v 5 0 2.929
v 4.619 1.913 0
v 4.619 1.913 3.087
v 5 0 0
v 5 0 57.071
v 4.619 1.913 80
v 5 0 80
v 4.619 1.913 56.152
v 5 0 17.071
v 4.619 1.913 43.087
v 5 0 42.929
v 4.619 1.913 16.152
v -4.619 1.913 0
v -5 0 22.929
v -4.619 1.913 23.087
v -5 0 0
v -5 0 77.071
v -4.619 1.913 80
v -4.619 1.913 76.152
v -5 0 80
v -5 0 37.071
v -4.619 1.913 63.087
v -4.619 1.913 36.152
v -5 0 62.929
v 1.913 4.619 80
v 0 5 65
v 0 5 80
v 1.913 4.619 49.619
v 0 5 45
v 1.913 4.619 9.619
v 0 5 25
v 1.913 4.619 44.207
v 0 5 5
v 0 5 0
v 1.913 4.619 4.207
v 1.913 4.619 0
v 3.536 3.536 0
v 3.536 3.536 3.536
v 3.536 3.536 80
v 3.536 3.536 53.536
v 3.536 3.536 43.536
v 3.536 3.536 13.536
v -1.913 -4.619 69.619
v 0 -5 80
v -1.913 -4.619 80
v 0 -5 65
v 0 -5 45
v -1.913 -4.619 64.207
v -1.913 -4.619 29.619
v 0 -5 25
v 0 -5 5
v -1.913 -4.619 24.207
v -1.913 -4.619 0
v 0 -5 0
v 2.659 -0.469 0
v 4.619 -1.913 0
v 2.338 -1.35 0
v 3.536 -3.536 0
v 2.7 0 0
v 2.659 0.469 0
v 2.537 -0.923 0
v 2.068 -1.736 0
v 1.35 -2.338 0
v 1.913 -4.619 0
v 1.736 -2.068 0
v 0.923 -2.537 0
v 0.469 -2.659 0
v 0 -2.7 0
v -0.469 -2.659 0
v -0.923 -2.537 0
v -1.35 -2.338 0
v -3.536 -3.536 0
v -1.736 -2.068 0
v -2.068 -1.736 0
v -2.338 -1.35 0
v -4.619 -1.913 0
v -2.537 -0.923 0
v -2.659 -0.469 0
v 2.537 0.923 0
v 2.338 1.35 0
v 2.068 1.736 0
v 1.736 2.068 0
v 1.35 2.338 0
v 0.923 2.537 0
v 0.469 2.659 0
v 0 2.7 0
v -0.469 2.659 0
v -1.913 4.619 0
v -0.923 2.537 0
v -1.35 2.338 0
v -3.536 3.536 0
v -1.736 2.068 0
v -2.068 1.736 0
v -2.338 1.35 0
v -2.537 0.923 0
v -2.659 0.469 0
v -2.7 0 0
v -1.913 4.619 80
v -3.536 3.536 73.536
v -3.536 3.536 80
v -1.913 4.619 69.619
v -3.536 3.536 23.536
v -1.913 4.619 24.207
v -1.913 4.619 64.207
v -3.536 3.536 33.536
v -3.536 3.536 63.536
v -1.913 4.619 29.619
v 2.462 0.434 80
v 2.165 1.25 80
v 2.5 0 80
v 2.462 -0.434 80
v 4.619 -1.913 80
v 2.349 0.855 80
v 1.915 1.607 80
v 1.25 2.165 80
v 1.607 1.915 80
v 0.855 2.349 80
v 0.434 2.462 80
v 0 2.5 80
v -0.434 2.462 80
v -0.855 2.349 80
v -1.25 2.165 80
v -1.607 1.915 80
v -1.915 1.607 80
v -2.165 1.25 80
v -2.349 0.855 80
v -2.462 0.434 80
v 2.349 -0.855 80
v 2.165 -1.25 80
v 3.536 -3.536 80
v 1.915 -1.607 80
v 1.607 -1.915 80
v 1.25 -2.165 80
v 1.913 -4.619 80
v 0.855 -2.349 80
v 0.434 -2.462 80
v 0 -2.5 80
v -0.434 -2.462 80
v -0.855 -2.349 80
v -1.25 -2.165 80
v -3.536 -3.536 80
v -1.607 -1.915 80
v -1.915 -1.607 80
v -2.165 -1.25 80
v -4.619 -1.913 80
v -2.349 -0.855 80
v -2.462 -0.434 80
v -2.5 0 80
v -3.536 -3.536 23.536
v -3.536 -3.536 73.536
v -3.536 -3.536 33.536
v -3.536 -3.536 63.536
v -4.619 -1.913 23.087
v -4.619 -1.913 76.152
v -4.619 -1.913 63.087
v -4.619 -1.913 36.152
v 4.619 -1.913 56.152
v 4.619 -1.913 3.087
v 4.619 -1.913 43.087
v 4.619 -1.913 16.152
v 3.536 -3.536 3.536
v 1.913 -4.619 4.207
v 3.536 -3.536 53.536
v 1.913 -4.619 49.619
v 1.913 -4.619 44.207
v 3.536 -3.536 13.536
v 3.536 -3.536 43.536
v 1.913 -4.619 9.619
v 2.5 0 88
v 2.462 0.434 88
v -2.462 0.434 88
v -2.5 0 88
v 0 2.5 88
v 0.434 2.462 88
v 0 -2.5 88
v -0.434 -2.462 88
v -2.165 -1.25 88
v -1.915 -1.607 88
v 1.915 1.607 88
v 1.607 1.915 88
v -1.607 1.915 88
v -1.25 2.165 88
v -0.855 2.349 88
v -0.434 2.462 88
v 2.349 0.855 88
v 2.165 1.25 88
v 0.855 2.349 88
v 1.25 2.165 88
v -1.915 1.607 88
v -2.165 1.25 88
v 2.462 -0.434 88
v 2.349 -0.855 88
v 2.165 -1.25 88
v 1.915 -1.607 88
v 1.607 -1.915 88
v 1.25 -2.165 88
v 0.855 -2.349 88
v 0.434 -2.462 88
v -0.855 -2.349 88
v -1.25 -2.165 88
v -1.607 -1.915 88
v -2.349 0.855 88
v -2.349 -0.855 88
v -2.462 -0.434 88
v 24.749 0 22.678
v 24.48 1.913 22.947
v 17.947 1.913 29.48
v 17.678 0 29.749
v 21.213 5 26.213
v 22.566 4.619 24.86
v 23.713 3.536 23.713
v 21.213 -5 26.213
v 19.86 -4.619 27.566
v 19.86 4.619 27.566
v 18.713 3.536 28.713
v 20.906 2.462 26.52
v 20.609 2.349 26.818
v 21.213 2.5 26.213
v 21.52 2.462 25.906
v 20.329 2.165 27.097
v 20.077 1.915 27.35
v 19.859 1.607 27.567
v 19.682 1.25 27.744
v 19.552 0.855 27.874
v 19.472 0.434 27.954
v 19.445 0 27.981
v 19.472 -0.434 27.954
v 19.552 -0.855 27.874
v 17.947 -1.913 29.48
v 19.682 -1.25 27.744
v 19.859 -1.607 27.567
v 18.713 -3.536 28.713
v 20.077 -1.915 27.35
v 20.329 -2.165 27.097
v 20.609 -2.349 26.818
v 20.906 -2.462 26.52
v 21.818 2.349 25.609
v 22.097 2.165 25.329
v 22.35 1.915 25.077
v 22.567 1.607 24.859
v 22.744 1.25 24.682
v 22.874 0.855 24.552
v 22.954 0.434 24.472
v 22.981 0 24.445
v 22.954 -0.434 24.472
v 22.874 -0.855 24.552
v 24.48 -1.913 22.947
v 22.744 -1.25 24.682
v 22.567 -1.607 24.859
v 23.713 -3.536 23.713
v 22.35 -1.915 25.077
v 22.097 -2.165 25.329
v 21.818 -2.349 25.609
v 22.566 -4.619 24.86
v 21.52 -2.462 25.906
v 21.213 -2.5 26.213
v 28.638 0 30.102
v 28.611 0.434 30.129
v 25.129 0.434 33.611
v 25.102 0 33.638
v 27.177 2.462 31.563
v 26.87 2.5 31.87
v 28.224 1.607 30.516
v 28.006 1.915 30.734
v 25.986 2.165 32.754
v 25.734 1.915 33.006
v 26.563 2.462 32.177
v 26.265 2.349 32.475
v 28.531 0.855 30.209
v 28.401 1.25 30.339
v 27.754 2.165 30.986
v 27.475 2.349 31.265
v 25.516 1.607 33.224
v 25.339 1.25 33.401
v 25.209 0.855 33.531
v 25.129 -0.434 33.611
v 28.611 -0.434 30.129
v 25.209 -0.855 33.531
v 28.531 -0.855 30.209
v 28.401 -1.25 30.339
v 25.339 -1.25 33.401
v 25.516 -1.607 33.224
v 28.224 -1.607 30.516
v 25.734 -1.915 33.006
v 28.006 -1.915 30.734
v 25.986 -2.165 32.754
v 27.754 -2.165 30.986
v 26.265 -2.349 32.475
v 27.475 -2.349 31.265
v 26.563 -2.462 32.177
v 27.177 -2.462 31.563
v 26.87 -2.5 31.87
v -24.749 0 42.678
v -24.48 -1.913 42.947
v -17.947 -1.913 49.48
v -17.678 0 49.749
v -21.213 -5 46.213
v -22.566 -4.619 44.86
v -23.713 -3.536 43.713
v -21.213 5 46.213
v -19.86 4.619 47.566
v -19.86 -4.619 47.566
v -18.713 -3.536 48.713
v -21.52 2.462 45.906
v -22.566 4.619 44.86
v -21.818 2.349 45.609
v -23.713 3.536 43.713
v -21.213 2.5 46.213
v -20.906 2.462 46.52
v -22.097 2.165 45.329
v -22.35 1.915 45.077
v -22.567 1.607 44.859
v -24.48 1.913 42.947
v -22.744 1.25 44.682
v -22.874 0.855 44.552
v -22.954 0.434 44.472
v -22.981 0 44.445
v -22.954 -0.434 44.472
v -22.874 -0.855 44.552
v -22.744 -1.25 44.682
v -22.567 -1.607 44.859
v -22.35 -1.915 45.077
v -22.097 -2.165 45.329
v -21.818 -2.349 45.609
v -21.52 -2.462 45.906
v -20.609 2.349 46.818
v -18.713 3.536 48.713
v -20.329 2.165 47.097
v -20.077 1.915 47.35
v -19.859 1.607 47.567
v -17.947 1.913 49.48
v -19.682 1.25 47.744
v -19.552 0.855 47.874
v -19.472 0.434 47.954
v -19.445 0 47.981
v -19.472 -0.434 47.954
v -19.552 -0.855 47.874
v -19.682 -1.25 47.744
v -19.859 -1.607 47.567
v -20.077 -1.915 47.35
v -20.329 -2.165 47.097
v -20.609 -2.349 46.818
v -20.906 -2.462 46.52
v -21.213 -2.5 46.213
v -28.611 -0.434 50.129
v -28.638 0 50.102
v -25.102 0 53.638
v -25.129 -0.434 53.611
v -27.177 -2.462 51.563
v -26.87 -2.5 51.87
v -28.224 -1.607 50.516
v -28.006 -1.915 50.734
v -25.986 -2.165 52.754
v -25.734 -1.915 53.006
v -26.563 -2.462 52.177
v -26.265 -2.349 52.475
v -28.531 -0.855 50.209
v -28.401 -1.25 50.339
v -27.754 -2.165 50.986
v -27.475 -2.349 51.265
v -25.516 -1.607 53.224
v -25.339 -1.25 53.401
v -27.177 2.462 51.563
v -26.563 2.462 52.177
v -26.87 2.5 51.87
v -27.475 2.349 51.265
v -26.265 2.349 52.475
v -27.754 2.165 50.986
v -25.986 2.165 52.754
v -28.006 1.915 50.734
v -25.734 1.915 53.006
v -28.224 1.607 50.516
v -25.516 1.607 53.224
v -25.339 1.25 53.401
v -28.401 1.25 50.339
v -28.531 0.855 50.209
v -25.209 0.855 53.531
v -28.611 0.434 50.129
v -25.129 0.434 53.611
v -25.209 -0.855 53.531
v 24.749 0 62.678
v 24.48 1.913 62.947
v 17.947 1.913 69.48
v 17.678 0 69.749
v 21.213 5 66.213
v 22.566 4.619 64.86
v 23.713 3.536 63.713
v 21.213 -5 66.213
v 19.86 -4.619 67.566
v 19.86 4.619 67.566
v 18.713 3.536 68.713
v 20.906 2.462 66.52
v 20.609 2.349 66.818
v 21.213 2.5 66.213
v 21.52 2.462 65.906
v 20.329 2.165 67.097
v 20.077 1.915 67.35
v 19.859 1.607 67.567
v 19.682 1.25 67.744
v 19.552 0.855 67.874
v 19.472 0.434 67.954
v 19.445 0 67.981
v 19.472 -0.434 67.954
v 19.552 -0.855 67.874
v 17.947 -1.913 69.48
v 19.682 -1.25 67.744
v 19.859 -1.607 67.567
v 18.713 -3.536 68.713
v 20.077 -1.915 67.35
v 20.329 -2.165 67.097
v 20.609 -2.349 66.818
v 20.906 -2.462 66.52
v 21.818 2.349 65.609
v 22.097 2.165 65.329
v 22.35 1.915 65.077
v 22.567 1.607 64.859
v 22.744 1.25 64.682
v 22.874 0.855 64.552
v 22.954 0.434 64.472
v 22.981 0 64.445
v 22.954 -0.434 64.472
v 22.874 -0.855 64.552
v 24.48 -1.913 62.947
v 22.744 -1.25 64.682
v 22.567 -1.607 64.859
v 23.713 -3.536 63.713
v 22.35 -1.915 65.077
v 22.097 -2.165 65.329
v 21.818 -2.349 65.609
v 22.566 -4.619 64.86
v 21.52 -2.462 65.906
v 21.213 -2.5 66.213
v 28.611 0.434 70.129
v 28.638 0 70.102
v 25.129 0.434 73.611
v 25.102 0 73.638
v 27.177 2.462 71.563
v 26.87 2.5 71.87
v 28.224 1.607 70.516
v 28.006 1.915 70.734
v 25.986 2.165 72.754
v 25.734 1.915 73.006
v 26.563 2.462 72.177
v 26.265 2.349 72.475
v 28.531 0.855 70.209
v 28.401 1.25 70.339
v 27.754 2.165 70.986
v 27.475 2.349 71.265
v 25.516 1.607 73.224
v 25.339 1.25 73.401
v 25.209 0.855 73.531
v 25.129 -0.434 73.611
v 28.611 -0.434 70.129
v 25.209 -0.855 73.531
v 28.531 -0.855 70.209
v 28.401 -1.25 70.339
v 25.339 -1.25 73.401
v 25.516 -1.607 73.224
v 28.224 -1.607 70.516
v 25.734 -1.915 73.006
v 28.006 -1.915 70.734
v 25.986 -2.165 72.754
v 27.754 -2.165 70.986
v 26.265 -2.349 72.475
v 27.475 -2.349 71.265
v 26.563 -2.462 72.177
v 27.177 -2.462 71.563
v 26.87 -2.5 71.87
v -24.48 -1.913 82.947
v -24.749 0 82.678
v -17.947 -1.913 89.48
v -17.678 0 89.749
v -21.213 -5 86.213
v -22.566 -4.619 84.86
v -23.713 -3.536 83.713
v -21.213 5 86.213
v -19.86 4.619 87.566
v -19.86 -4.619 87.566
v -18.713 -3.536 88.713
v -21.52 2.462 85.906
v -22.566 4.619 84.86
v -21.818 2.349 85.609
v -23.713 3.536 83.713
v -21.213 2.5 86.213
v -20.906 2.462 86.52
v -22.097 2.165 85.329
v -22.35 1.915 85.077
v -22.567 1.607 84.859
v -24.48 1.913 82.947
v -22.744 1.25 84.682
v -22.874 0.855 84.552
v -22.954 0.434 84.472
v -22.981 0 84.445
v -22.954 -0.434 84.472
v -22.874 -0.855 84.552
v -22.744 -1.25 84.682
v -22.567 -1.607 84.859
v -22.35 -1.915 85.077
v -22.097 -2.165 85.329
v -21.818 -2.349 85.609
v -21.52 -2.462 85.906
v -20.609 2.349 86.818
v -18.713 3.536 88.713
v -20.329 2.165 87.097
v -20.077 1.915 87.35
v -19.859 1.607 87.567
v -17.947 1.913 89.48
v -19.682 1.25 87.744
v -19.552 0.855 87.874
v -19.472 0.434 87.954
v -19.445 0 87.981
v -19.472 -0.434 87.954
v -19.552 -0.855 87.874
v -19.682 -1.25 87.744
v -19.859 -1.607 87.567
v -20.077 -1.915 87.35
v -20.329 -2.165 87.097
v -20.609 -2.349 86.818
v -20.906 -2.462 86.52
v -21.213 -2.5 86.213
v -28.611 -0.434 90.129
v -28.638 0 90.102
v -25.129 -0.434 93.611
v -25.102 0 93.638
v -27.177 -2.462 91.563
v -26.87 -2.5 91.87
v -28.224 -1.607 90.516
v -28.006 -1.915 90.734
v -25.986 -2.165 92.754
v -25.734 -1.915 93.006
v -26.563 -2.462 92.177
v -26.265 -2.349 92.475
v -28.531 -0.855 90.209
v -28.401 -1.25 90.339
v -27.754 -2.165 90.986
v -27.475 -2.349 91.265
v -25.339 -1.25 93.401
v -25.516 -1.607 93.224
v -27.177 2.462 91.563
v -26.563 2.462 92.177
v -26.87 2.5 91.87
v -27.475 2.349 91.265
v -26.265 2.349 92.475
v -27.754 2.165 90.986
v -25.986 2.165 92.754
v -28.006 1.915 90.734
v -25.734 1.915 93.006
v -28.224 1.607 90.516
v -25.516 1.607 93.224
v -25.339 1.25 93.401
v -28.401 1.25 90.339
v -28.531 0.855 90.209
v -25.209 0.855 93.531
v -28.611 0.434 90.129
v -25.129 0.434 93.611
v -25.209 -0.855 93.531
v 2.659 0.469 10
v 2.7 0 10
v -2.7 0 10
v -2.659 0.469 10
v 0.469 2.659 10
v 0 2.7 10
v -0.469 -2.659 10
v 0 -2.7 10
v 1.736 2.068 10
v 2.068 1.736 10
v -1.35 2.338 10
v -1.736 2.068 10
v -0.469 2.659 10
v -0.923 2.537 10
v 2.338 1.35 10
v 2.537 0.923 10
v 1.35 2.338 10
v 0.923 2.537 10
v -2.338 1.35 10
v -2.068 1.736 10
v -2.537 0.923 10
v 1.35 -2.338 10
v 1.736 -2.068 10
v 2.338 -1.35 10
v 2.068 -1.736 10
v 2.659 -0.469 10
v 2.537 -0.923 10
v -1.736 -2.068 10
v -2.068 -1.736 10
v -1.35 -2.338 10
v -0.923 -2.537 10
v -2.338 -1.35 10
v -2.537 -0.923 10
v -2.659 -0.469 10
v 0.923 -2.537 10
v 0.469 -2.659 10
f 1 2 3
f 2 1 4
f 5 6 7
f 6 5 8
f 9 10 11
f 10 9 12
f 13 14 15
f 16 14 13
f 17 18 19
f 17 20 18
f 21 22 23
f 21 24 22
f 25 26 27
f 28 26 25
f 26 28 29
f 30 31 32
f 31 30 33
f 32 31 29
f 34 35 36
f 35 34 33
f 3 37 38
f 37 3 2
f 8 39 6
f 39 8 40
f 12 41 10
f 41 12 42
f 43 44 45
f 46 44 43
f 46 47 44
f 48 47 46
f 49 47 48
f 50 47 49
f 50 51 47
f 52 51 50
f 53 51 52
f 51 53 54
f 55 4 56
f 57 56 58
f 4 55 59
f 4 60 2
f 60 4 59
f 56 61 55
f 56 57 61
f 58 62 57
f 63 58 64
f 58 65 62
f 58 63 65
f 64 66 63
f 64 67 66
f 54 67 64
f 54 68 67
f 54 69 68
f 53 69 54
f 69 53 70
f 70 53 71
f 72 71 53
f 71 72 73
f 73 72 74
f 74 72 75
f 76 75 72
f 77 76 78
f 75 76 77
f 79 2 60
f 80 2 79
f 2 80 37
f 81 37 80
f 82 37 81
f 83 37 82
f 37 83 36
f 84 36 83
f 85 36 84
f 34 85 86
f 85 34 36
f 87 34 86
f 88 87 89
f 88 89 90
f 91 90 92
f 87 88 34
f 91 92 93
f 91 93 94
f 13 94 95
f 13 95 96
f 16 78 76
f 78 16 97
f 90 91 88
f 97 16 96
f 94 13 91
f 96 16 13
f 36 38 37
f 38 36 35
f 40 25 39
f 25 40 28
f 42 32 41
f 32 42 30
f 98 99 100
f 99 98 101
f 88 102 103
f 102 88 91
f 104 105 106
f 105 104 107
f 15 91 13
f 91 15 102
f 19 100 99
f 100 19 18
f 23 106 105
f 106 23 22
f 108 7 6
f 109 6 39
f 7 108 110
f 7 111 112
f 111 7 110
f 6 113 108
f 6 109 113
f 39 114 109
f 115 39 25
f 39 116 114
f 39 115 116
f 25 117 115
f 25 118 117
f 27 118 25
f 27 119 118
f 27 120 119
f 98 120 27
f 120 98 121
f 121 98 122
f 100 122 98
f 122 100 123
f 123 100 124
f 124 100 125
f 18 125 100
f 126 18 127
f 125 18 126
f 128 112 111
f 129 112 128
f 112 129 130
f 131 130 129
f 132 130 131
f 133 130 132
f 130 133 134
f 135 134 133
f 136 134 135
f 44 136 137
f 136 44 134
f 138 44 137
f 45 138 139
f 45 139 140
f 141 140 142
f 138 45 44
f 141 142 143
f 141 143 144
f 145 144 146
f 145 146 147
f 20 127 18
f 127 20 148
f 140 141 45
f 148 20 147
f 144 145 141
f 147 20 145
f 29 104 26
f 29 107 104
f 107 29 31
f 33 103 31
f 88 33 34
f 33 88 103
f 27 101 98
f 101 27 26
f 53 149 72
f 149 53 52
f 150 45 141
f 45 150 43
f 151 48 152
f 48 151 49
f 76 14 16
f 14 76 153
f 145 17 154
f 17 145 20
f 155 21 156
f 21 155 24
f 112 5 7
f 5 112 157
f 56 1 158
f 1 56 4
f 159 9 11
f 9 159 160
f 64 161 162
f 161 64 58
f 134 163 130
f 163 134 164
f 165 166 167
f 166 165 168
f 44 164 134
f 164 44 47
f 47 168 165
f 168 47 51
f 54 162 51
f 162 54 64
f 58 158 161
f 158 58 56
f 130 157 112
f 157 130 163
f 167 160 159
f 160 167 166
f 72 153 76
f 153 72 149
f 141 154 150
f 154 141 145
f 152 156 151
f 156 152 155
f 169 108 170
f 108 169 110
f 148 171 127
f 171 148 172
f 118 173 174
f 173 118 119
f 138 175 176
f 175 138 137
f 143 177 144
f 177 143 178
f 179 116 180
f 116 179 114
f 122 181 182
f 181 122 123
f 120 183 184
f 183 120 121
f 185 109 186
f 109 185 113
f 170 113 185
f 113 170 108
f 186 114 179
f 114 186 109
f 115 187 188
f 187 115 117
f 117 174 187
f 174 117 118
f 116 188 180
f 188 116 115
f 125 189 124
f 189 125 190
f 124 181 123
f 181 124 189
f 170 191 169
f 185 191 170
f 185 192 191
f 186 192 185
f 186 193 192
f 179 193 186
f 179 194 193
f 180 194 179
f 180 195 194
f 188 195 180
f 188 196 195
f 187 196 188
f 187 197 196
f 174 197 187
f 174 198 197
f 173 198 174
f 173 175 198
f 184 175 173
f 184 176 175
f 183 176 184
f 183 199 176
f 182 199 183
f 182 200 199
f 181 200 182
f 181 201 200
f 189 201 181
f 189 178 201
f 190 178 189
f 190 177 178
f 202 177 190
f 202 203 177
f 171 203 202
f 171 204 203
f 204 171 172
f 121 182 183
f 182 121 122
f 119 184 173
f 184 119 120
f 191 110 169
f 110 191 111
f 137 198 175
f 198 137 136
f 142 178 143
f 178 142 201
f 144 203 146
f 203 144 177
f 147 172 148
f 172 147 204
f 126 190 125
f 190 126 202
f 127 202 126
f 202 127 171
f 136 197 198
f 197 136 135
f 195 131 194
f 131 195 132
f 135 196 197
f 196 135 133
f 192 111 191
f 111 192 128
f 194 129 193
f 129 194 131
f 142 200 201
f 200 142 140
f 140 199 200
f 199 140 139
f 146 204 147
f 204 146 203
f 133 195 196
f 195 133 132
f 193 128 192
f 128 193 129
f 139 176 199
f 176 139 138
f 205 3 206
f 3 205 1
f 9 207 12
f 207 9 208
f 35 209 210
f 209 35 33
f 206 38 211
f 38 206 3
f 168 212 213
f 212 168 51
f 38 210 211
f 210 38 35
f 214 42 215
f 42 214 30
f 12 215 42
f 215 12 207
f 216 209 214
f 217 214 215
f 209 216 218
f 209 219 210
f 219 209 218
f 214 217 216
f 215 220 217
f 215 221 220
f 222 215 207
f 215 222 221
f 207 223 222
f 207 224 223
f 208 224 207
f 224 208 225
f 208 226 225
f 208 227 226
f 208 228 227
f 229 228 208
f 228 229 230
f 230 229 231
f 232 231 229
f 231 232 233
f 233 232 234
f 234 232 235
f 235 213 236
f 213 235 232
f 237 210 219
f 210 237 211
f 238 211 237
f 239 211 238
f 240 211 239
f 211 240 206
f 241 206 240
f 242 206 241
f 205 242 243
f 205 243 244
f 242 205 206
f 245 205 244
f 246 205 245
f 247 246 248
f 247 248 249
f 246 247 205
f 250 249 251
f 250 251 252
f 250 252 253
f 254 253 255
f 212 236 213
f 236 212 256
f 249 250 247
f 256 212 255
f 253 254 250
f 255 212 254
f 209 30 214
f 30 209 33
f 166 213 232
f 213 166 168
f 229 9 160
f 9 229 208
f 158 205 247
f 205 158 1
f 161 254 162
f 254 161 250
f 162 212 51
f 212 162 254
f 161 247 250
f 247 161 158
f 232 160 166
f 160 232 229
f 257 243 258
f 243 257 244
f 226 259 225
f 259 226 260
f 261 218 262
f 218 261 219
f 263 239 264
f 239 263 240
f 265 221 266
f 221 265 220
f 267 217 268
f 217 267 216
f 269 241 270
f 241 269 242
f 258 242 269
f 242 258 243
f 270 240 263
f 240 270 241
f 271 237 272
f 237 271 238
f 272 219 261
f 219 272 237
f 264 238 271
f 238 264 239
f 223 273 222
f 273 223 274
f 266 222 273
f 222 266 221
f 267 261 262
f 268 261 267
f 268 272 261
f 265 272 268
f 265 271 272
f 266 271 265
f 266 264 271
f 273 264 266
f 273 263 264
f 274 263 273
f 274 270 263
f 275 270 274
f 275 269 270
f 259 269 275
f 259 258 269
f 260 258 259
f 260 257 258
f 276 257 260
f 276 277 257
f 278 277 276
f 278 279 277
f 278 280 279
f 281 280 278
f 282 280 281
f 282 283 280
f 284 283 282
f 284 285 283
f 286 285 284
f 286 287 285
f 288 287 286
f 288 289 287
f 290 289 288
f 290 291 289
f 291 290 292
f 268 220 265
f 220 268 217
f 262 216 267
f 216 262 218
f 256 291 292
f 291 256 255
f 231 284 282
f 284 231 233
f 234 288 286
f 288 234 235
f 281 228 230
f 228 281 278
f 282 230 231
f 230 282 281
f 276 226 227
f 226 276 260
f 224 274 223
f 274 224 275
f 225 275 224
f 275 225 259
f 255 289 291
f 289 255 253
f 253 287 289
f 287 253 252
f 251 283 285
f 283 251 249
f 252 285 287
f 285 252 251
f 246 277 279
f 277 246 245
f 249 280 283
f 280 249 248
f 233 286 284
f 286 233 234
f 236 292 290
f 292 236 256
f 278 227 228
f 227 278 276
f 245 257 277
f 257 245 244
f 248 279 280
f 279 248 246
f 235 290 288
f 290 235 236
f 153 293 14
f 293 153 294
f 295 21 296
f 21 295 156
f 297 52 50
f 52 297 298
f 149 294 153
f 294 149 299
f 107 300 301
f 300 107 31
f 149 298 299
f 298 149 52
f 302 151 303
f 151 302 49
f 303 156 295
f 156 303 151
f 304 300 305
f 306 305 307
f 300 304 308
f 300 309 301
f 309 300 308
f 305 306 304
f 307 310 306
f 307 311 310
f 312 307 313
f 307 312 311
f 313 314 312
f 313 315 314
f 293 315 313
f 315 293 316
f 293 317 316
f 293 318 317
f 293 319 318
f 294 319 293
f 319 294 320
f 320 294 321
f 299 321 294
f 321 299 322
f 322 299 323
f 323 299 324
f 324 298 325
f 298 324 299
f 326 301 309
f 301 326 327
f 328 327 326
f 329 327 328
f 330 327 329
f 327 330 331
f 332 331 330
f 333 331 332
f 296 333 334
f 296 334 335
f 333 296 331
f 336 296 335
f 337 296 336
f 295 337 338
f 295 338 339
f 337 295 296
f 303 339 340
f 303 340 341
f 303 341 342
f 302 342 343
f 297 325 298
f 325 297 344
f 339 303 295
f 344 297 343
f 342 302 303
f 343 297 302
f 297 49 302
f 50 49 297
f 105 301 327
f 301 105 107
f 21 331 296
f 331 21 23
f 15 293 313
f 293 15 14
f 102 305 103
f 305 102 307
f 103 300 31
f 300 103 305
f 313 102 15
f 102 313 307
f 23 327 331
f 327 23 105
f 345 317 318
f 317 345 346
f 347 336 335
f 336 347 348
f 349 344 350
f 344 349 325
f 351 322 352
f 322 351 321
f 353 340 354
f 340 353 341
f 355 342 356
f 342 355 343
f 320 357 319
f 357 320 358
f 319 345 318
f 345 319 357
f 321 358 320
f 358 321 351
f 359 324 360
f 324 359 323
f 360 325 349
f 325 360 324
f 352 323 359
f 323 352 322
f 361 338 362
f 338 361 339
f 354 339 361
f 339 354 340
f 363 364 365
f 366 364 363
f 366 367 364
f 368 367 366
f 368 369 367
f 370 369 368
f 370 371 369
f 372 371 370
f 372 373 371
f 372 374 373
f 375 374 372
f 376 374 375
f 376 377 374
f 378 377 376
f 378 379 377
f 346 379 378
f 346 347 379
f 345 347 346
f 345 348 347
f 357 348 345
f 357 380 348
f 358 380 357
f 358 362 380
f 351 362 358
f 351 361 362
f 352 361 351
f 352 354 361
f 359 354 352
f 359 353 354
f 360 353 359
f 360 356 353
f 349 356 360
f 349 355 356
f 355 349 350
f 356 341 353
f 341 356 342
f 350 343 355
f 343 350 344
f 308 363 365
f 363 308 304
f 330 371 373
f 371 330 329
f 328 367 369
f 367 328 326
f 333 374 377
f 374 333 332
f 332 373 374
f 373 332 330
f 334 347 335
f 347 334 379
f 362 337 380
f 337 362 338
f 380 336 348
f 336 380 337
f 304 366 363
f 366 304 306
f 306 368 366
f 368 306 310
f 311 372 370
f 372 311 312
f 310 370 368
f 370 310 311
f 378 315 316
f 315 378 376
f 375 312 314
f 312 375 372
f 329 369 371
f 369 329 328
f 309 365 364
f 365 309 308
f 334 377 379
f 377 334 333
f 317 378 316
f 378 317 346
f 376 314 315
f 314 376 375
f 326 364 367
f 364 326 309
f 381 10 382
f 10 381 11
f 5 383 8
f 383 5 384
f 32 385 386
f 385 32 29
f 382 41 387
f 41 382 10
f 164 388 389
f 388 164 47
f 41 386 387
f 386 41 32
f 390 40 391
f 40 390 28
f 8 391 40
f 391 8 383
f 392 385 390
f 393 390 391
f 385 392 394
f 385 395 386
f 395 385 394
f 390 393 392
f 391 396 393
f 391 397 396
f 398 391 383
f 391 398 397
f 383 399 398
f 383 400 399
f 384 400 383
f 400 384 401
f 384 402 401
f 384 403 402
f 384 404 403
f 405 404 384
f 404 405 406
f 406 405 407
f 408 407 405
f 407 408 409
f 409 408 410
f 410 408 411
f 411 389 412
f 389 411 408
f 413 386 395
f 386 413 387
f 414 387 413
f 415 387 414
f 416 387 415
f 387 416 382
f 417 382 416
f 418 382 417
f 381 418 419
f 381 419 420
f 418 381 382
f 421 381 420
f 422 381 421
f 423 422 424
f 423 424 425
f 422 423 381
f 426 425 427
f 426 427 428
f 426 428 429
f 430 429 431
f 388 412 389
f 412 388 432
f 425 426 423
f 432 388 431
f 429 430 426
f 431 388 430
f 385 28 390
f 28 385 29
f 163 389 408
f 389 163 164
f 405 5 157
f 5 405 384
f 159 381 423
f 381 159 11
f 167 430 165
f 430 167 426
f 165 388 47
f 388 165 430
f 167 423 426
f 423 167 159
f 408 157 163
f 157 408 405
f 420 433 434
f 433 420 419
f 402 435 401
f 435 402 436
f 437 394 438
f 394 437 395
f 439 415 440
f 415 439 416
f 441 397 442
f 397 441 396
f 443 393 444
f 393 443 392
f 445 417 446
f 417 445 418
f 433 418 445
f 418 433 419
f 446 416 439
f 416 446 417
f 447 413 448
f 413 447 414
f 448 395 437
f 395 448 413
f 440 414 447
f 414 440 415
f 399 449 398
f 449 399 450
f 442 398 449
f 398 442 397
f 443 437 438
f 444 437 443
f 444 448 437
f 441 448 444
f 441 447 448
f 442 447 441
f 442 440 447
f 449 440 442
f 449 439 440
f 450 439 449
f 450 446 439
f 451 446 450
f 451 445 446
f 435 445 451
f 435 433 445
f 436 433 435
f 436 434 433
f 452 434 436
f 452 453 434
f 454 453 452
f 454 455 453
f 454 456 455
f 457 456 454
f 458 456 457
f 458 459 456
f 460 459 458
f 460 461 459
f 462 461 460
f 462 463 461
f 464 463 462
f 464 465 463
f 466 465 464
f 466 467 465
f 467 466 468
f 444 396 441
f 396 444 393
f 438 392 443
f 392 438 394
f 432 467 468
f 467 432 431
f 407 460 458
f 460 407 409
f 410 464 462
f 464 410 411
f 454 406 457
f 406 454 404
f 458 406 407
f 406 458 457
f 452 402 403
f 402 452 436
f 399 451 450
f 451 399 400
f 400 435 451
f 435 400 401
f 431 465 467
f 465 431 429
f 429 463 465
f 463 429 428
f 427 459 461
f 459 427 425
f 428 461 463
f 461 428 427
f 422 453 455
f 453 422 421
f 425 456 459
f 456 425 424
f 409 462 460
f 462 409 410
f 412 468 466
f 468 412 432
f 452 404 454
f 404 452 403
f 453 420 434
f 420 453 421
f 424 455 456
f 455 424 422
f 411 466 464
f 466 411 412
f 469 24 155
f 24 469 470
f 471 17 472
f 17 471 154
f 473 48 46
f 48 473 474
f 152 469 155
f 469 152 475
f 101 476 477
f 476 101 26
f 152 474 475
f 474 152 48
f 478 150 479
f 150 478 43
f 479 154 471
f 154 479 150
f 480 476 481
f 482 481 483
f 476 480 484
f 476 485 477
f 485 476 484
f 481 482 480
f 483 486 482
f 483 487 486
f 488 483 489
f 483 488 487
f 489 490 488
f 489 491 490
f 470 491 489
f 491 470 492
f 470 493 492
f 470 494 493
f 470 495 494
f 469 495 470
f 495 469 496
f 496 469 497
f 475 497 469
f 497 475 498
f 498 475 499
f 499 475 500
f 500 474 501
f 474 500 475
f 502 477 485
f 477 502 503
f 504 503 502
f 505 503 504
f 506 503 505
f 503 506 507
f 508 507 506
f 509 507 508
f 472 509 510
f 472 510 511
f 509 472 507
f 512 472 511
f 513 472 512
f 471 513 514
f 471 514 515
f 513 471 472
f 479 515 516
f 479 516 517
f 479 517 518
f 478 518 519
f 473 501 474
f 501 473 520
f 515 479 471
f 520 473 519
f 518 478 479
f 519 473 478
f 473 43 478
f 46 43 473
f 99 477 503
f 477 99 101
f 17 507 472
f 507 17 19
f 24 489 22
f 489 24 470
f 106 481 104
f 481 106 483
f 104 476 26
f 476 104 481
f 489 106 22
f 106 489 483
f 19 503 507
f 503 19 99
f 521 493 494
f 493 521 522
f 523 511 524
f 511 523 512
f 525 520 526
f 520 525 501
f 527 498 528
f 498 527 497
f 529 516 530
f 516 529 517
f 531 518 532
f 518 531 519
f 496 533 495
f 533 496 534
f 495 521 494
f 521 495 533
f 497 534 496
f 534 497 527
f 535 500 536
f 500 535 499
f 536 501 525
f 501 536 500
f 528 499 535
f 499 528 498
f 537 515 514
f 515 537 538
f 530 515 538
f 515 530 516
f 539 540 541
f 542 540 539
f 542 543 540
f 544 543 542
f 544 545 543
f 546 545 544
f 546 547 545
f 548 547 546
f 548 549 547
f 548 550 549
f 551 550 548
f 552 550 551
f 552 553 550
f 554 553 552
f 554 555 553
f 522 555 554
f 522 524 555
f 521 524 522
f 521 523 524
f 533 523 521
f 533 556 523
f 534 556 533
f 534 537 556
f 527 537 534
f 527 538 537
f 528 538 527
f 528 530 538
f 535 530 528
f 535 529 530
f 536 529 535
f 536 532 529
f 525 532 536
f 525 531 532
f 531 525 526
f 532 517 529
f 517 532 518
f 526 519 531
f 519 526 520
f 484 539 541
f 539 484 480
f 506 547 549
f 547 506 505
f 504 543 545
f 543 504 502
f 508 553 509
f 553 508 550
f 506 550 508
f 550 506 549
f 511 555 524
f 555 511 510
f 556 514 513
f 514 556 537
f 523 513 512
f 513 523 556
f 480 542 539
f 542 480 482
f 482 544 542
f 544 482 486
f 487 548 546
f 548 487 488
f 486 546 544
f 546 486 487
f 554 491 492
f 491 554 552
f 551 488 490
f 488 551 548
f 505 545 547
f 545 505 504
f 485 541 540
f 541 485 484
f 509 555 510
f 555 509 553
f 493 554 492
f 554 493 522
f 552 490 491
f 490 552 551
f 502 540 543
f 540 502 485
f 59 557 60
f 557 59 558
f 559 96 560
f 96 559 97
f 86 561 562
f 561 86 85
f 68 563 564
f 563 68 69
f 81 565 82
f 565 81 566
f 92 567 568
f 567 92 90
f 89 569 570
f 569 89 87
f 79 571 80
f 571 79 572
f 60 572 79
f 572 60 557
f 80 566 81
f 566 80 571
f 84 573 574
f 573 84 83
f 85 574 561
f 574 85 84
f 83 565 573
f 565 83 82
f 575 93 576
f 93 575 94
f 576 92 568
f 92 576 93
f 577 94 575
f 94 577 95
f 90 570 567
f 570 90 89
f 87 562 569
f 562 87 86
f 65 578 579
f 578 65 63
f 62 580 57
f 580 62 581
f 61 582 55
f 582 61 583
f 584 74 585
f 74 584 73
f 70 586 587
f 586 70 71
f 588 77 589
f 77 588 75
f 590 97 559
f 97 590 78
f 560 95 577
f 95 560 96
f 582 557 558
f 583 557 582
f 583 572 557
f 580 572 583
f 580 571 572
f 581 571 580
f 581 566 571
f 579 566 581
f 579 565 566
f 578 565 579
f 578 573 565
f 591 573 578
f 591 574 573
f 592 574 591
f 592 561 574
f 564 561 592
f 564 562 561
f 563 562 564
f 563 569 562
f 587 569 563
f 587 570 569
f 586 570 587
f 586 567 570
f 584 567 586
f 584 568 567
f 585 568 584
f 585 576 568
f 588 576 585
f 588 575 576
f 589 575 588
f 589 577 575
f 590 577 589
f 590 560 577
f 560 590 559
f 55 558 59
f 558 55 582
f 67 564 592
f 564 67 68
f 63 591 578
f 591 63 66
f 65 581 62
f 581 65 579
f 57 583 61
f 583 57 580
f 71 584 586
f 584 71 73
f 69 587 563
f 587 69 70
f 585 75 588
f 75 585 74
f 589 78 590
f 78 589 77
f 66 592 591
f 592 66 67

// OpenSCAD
difference(){
	union() {
		union() {
			union() {
				union() {
					difference() {
						union() {
							cylinder(h = 80, r = 5);
							translate(v = [0, 0, 80]) {
								cylinder($fn = 36, h = 8, r = 2.5000000000);
							}
						}
					}
					translate(v = [0, 0, 5]) {
						rotate(a = 0, v = [0, 0, 1]) {
							rotate(a = 45, v = [0, 1, 0]) {
								union() {
									cylinder(h = 30, r = 5);
									translate(v = [0, 0, 30]) {
										cylinder($fn = 36, h = 8, r = 2.5000000000);
									}
								}
							}
						}
					}
				}
				translate(v = [0, 0, 25]) {
					rotate(a = 180, v = [0, 0, 1]) {
						rotate(a = 45, v = [0, 1, 0]) {
							union() {
								cylinder(h = 30, r = 5);
								translate(v = [0, 0, 30]) {
									cylinder($fn = 36, h = 8, r = 2.5000000000);
								}
							}
						}
					}
				}
			}
			translate(v = [0, 0, 45]) {
				rotate(a = 0, v = [0, 0, 1]) {
					rotate(a = 45, v = [0, 1, 0]) {
						union() {
							cylinder(h = 30, r = 5);
							translate(v = [0, 0, 30]) {
								cylinder($fn = 36, h = 8, r = 2.5000000000);
							}
						}
					}
				}
			}
		}
		translate(v = [0, 0, 65]) {
			rotate(a = 180, v = [0, 0, 1]) {
				rotate(a = 45, v = [0, 1, 0]) {
					union() {
						cylinder(h = 30, r = 5);
						translate(v = [0, 0, 30]) {
							cylinder($fn = 36, h = 8, r = 2.5000000000);
						}
					}
				}
			}
		}
	}
	/* Holes Below*/
	union(){
		union(){
			union(){
				union(){
					difference(){
						cylinder($fn = 36, h = 10, r = 2.7000000000);
					}
				}
			}
		}
	} /* End Holes */ 
}
